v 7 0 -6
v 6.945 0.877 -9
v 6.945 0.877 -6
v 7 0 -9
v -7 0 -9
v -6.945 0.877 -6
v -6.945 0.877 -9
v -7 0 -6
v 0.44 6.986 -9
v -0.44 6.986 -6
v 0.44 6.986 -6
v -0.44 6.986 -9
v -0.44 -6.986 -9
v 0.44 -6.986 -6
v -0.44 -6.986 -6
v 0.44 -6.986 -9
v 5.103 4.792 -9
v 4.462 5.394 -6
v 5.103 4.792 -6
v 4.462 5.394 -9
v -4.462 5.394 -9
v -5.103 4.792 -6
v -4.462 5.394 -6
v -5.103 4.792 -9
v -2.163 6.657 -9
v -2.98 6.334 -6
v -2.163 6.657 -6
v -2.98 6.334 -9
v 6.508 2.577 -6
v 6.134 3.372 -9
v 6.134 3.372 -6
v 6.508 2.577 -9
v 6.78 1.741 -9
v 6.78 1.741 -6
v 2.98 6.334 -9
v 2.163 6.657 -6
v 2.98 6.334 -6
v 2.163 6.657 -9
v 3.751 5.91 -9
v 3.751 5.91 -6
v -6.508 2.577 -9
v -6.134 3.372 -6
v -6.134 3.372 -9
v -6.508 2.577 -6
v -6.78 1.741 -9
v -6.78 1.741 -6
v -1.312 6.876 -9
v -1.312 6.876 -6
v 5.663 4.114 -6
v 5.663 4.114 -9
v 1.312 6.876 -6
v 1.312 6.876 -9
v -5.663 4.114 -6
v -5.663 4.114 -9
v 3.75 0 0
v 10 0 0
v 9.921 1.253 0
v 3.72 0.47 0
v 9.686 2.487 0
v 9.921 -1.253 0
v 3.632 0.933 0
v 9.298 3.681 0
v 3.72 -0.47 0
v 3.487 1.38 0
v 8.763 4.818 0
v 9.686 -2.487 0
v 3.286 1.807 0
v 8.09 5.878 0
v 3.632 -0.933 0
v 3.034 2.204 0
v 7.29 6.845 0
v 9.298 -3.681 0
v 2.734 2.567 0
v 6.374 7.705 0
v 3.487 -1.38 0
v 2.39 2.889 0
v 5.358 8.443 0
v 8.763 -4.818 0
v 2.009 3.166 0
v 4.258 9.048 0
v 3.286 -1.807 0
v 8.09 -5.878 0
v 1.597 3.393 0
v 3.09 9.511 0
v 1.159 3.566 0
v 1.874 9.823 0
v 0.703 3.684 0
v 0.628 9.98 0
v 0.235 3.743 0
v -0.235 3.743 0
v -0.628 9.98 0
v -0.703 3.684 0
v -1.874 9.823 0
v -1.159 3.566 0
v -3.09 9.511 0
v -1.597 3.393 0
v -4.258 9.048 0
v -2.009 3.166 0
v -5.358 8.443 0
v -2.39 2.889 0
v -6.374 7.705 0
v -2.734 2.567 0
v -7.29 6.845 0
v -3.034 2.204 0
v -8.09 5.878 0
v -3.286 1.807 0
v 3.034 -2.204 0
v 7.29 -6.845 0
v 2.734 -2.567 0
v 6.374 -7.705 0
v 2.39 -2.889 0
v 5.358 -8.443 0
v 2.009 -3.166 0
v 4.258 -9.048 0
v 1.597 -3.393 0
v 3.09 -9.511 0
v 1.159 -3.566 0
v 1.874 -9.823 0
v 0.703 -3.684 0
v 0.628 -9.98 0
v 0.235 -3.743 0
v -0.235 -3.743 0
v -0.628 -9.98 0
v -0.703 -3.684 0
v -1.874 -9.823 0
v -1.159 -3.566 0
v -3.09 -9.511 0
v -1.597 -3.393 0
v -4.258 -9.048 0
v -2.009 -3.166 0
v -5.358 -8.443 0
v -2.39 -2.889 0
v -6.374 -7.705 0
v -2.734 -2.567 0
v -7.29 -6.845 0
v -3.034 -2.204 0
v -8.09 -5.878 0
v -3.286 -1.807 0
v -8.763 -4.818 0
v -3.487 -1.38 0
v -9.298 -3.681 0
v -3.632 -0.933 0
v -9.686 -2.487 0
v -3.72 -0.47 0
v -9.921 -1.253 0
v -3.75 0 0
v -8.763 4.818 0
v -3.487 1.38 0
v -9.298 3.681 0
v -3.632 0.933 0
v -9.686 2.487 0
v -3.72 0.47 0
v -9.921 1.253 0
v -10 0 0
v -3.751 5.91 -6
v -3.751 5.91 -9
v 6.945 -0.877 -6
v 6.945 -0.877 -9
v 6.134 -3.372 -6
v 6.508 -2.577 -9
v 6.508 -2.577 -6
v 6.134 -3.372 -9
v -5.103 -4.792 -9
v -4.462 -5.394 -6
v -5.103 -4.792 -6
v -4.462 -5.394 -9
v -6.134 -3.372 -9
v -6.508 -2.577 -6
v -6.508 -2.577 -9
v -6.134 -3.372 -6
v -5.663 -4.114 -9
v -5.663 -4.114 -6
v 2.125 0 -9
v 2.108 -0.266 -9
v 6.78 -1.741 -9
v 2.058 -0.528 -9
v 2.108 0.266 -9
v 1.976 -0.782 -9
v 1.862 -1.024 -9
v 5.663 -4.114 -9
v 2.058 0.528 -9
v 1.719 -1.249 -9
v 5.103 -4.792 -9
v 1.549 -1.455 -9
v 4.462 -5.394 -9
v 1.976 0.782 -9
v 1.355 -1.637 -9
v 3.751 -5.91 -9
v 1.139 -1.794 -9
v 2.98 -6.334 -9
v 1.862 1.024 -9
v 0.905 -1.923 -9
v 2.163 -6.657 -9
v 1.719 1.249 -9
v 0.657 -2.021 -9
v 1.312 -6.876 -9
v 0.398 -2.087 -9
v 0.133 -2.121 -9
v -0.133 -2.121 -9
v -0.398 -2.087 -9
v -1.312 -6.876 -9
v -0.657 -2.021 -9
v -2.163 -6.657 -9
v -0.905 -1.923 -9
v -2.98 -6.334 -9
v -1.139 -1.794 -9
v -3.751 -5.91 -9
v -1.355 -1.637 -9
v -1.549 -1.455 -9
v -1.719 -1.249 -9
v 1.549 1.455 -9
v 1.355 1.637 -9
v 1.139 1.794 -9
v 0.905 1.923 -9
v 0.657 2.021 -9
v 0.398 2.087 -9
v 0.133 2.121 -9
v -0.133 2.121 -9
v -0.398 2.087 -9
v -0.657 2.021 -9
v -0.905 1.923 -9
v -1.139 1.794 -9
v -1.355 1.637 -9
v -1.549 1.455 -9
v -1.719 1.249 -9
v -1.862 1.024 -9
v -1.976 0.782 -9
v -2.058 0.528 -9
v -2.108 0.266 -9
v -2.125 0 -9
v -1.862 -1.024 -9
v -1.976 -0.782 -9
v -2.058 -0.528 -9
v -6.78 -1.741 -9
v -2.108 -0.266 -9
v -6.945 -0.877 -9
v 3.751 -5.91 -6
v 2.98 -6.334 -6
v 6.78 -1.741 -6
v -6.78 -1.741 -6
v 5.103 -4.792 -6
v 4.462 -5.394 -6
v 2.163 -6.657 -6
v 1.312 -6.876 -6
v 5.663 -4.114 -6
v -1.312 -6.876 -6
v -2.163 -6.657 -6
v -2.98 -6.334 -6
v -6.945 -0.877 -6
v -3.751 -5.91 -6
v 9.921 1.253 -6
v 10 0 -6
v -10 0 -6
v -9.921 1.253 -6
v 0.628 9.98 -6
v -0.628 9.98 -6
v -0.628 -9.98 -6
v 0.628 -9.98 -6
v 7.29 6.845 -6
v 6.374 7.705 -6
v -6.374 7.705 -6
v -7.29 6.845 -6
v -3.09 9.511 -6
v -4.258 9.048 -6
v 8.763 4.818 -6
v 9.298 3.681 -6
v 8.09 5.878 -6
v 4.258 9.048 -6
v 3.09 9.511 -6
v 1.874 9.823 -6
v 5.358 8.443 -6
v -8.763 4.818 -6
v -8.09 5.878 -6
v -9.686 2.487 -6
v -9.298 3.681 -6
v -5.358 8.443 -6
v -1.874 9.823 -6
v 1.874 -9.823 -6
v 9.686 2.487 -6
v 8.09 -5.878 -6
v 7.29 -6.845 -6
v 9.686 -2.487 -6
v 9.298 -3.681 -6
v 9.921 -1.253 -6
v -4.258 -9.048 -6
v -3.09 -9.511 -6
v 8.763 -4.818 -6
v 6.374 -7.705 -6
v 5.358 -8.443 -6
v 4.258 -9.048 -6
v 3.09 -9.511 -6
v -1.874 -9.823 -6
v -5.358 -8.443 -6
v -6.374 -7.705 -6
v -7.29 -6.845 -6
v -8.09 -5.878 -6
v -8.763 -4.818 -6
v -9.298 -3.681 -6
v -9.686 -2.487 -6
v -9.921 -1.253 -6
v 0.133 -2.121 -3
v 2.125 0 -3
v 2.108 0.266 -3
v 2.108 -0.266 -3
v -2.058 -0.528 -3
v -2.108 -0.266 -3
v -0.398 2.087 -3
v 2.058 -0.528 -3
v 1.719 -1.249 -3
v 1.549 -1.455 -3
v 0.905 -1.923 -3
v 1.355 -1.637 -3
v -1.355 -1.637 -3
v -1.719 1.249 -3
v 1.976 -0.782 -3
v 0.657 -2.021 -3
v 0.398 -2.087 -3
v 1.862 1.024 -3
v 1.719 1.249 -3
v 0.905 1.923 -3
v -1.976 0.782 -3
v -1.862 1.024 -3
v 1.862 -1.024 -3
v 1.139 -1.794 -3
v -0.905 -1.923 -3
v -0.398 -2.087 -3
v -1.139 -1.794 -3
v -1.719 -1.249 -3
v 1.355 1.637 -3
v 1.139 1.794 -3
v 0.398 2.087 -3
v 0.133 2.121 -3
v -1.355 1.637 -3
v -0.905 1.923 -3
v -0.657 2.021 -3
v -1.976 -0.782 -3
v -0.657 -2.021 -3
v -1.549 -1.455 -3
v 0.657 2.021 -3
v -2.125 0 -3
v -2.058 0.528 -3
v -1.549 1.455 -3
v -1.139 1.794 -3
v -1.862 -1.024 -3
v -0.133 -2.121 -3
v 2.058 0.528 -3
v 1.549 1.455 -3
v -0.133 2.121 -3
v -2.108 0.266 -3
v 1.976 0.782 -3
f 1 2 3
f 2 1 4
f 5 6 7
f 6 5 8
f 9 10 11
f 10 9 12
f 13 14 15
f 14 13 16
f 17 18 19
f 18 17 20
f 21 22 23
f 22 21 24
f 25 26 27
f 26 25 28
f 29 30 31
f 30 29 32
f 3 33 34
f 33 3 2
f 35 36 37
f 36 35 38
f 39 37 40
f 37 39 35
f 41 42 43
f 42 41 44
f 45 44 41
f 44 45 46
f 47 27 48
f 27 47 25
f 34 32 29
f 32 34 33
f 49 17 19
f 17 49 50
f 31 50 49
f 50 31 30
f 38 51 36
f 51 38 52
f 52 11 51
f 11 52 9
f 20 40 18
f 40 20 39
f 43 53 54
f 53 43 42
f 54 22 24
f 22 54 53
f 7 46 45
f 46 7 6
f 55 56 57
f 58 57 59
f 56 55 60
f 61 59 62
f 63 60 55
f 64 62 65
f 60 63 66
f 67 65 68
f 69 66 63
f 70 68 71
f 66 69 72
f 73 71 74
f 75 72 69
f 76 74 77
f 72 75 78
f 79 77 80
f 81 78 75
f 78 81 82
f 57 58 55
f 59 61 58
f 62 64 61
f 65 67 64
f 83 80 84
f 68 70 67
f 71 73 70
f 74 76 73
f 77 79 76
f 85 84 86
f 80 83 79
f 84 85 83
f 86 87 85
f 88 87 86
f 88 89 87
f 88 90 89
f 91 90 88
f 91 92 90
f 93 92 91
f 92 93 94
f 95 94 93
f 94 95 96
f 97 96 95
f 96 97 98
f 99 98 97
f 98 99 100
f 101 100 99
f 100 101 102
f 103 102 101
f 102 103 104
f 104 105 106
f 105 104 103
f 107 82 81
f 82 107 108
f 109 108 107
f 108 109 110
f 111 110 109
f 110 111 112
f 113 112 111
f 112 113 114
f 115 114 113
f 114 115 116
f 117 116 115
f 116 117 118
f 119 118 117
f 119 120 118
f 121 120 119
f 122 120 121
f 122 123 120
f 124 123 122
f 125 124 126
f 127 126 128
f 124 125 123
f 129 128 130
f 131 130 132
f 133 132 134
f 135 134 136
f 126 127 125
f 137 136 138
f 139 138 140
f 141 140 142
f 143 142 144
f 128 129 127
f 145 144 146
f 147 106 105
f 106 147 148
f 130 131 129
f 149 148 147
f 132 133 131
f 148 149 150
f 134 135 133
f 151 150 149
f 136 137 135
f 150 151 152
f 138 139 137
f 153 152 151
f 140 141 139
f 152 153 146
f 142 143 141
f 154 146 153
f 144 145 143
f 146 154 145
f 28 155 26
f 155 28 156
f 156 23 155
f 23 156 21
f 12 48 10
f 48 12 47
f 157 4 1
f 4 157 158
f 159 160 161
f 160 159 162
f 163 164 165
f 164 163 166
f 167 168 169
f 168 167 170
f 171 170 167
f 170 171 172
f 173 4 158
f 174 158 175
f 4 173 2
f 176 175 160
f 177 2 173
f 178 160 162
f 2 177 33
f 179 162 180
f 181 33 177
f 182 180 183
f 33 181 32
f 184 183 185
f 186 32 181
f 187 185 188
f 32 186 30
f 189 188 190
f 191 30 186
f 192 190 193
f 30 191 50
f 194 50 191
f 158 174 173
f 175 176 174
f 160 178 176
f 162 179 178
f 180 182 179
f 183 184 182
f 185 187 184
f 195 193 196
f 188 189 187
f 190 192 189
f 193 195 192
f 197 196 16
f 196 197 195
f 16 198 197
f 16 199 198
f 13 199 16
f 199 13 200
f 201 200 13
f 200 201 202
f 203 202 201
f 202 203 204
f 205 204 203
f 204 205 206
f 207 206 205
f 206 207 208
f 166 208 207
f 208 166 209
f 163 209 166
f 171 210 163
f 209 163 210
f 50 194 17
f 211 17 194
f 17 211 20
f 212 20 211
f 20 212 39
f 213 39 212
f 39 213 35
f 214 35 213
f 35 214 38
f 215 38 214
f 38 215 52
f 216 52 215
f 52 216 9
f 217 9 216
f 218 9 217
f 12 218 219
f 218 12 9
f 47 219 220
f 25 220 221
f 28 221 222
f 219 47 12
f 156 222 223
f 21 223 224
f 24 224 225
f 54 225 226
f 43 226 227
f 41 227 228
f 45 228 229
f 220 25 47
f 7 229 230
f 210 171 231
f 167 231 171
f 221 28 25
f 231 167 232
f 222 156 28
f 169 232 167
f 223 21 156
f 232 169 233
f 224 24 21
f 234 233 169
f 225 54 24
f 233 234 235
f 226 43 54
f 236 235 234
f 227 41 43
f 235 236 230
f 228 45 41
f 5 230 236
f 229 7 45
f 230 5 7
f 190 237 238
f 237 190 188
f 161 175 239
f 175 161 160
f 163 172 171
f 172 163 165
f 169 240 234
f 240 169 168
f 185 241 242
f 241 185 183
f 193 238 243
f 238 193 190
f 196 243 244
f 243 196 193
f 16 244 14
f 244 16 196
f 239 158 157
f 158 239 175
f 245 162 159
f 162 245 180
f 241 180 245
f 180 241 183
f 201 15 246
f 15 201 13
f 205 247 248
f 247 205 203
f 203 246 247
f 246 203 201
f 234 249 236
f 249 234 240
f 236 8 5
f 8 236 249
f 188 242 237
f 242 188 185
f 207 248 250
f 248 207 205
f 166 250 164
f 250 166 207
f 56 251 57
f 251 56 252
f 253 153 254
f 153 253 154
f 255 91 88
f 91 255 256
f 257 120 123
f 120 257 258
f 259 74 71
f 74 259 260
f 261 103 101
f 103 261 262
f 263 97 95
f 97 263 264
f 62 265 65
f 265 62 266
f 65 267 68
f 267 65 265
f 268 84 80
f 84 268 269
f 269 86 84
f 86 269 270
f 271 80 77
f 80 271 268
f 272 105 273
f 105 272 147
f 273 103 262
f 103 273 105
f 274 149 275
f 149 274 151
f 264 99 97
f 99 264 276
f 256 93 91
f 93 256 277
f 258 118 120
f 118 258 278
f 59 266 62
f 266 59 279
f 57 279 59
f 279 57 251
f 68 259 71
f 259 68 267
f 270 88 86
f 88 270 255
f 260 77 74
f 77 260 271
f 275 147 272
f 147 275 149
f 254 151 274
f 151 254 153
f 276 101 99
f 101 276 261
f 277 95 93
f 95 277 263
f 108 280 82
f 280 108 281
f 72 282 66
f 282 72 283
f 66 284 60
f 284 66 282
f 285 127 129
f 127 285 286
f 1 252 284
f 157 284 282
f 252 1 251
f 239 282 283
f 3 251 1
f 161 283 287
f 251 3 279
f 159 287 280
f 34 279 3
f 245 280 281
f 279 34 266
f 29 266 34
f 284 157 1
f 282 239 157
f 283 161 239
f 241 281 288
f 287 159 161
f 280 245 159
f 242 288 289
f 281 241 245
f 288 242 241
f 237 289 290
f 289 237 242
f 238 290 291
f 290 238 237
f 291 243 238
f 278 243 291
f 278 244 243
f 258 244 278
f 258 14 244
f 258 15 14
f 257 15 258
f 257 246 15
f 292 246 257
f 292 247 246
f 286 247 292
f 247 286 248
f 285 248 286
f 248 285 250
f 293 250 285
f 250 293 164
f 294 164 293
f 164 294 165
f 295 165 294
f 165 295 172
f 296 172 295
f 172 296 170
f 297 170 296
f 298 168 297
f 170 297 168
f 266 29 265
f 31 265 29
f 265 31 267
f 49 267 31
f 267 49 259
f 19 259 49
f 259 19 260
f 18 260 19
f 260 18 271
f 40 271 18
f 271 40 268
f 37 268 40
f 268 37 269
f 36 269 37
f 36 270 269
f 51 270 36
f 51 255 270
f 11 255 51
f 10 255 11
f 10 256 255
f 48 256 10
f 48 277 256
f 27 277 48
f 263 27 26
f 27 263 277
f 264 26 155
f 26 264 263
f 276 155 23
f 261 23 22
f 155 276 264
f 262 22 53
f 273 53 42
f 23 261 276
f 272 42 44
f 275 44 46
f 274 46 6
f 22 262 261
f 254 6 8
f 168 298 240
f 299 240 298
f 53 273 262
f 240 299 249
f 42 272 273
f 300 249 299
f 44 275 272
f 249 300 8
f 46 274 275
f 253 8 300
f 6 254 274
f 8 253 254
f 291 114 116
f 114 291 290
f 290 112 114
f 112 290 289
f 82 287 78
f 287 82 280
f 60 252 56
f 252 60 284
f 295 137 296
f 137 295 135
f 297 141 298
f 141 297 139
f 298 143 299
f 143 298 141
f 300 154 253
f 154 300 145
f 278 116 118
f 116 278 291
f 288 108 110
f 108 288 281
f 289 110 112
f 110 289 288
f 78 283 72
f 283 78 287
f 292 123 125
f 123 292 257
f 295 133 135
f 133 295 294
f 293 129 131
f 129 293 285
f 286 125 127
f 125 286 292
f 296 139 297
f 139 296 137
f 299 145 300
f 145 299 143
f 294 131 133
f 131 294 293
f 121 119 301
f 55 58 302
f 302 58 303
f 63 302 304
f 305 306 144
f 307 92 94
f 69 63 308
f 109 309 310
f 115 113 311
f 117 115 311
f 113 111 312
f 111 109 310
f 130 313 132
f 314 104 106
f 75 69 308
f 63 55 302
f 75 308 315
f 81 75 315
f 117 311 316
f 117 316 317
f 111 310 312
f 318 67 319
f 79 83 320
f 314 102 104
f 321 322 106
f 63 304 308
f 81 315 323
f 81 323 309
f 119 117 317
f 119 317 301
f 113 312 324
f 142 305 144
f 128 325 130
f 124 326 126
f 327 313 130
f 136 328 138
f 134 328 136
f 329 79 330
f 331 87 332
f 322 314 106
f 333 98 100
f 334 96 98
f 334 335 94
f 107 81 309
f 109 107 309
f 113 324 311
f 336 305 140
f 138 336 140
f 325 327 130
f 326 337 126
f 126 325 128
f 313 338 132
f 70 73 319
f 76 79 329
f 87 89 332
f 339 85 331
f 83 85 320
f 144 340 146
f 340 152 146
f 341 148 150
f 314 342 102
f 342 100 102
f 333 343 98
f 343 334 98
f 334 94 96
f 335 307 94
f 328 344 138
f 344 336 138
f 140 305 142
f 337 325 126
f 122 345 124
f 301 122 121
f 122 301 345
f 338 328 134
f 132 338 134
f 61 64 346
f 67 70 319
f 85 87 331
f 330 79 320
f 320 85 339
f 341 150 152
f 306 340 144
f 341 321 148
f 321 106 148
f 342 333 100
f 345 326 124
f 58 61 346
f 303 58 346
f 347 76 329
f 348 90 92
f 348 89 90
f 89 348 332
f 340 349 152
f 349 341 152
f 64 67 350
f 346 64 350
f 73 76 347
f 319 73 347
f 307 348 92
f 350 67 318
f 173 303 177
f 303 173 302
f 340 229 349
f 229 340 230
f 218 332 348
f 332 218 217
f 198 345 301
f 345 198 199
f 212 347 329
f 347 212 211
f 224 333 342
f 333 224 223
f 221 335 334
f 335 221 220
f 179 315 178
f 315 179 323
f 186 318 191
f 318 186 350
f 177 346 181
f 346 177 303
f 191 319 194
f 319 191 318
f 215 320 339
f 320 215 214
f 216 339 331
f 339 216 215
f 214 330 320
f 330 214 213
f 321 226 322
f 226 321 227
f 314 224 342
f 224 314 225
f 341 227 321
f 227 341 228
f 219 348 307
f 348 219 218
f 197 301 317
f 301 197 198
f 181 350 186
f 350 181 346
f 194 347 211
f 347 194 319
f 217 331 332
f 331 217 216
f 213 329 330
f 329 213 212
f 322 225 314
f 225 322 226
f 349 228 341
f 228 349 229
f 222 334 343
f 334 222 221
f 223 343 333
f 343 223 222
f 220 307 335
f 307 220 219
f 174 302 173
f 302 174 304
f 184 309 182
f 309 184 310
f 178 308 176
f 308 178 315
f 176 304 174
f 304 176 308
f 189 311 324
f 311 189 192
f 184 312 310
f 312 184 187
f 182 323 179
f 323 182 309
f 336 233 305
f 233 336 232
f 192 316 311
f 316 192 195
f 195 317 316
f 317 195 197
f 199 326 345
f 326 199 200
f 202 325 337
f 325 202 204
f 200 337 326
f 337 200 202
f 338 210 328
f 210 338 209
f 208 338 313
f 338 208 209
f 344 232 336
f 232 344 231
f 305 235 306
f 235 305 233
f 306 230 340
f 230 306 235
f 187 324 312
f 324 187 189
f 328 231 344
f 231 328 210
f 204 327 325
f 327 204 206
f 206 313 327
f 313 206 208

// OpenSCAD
$fn = 50;


difference() {
	union() {
		translate(v = [0, 0, -9.0000000000]) {
			cylinder(h = 9, r = 7.0000000000);
		}
		translate(v = [0, 0, -6.0000000000]) {
			cylinder(h = 6, r = 10.0000000000);
		}
	}
	union() {
		translate(v = [0, 0, 0]) {
			rotate(a = [0, 0, 0]) {
				difference() {
					union() {
						#translate(v = [0, 0, -9.0000000000]) {
							cylinder(h = 9, r = 2.0000000000);
						}
						#translate(v = [0, 0, -3]) {
							cylinder(h = 3, r = 7.0000000000, r1 = 2.1250000000, r2 = 3.7500000000);
						}
						#translate(v = [0, 0, -9.0000000000]) {
							cylinder(h = 9, r = 2.1250000000);
						}
						#translate(v = [0, 0, -9.0000000000]) {
							cylinder(h = 9, r = 2.0000000000);
						}
					}
					union();
				}
			}
		}
	}
}
